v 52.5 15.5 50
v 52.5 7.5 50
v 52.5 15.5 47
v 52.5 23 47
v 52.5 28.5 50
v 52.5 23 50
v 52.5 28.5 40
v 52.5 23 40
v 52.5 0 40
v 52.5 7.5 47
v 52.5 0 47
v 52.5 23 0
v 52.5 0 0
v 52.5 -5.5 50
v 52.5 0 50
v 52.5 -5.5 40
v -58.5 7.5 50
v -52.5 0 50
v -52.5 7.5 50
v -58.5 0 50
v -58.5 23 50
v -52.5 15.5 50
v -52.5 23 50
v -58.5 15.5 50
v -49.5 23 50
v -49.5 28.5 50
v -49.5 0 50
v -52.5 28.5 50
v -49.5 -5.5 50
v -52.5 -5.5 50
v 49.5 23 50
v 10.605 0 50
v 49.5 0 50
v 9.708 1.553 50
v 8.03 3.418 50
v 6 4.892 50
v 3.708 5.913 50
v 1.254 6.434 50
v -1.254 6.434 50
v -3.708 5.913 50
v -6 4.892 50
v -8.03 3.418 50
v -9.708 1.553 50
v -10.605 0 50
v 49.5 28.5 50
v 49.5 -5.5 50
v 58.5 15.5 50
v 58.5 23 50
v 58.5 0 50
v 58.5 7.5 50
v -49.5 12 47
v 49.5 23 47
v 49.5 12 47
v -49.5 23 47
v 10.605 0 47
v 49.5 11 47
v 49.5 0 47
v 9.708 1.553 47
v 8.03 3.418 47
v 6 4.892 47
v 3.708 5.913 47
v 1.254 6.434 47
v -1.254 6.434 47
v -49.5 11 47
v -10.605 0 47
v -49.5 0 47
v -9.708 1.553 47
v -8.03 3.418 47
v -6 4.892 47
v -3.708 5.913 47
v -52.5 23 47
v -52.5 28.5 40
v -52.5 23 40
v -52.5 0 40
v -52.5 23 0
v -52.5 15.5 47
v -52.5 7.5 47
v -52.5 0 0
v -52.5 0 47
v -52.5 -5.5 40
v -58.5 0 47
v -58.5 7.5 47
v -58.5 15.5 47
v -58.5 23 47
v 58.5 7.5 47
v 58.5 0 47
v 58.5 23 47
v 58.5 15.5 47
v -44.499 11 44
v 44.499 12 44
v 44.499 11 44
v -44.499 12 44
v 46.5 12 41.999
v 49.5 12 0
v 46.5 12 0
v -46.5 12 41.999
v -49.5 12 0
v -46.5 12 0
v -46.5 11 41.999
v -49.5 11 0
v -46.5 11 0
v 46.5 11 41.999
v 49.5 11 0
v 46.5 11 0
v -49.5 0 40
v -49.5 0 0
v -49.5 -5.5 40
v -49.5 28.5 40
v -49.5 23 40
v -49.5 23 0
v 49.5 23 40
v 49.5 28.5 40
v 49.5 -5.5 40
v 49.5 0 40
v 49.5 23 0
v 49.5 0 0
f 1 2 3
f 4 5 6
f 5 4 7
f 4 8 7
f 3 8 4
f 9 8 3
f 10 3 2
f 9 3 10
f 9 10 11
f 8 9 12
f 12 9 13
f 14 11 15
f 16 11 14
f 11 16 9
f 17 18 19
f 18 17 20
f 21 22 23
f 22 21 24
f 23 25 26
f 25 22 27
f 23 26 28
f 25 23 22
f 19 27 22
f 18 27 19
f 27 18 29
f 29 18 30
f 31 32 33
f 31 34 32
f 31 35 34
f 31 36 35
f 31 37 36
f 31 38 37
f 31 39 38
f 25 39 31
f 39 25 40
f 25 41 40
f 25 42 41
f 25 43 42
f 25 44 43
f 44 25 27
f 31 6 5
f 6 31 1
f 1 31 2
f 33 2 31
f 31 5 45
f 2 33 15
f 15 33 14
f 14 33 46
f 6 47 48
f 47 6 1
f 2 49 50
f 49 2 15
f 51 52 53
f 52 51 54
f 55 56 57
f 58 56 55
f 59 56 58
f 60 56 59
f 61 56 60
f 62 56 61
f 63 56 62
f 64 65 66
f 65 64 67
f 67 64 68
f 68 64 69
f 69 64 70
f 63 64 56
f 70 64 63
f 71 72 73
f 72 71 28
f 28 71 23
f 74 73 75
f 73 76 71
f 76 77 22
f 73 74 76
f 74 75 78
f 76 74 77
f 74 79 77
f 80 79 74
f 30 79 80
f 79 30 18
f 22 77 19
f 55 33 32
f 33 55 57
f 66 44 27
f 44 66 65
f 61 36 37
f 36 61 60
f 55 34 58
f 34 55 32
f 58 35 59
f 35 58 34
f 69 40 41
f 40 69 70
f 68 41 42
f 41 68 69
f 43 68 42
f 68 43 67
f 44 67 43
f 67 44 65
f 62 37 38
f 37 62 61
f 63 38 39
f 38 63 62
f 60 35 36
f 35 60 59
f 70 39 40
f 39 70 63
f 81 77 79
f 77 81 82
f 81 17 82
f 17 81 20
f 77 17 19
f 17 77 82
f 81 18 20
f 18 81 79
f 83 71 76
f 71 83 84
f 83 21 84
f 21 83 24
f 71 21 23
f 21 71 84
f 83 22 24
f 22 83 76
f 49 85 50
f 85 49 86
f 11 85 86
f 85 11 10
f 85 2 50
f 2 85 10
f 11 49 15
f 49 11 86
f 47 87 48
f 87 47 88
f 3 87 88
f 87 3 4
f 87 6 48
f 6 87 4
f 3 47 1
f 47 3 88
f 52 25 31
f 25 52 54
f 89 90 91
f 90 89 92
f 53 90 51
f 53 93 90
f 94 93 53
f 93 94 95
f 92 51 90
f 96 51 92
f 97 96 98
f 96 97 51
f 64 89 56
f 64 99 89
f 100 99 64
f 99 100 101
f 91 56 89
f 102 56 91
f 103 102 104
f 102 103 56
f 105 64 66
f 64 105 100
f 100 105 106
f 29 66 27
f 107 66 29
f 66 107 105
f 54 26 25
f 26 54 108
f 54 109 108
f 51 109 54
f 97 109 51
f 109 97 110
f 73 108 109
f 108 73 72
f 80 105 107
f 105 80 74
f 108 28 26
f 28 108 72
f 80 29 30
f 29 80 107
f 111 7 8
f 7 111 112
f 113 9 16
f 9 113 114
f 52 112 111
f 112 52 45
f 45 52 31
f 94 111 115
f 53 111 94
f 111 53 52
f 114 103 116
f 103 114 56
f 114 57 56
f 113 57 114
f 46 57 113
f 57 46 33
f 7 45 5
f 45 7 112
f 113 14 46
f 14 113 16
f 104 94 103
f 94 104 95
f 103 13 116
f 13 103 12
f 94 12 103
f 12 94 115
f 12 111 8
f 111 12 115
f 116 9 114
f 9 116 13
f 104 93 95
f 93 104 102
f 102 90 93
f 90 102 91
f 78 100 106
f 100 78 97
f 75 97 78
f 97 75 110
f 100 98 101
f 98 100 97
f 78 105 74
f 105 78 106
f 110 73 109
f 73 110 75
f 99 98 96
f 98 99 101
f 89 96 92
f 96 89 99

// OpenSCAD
bee_space = 7;

/*
// 3 make a 3/4d frame
frame_height = 177;
frame_width = (465 / 3) - bee_space * 2;
frame_spacing = 33;
frame_bar_width = 23;

bar_thickness = 3;
tab_length = bee_space;
tab_notch = 8;
spacing_tab_width = 10;
corner_size = 10;
groove_depth = 3;
groove_width = 3;
*/

// Apidea compatible?
frame_height = 50;
frame_width = 105;
frame_spacing = 34;
frame_bar_width = 23;

bar_thickness = 3;
tab_length = 6;
tab_notch = 8;
spacing_tab_width = 10;
corner_size = 10;
groove_depth = 3;
groove_width = 3;

groove1_y = frame_bar_width/2-bar_thickness-groove_width/2;
groove2_y = frame_bar_width/2+groove_width/2;

module grooved_tab() {
    translate([-tab_length, 0, 0])
        cube([tab_length, frame_bar_width/2-tab_notch/2, bar_thickness]);
    translate([-tab_length, frame_bar_width/2+tab_notch/2, 0])
        cube([tab_length, frame_bar_width/2-tab_notch/2, bar_thickness]);
}

module top_bar() {
    difference() {
        translate([-frame_width/2, 0, frame_height - bar_thickness])
            cube([frame_width, frame_bar_width/2-groove_width/2, bar_thickness]);
        translate([0, -(frame_spacing-frame_bar_width)/2, 0])
            cylinder(r=12, h=1e3);
    }
    
    translate([-frame_width/2, frame_bar_width/2-2, frame_height - bar_thickness])
        cube([frame_width, frame_bar_width/2+2, bar_thickness]);
    
    // Top Groove
    translate([-frame_width/2, groove2_y-2, frame_height - bar_thickness - groove_depth])
        cube([frame_width, 1, groove_depth]);
    
    //translate([-frame_width/2, groove2_y, frame_height - bar_thickness - groove_depth])
    //    cube([frame_width, bar_thickness, groove_depth]);
    
    
    // Tabs
    translate([-frame_width/2, 0, frame_height-bar_thickness])
        grooved_tab();
    translate([frame_width/2+tab_length, 0, frame_height-bar_thickness])
        grooved_tab();
    
    // Spacers
    translate([-frame_width/2, -(frame_spacing-frame_bar_width)/2, frame_height - spacing_tab_width])
        cube([bar_thickness, frame_spacing, spacing_tab_width]);
    
    translate([frame_width/2-bar_thickness, -(frame_spacing-frame_bar_width)/2, frame_height - spacing_tab_width])
        cube([bar_thickness, frame_spacing, spacing_tab_width]);
}

module corner() {
    hull() {
        translate([-groove_depth, 0, 1])
            cube([1, 1, 1e-3]);
        translate([-groove_depth, 0, corner_size+1])
            cube([1, 1, 1e-3]);
        translate([-groove_depth-corner_size, 0, 1])
            cube([1, 1, 1e-3]);
    }
}

module side_bar() {
    x_offset = frame_width/2-bar_thickness;
    translate([x_offset, 0, 0])
        cube([bar_thickness, frame_bar_width, frame_height]);
    
    //translate([x_offset-groove_depth, groove1_y, 0])
    //    cube([groove_depth, bar_thickness, frame_height]);
    
    translate([x_offset-groove_depth, groove2_y-2, 0])
        cube([groove_depth, 1, frame_height]);
    
    //translate([x_offset, groove1_y, 0])
    //    corner();
    //translate([x_offset, groove2_y, 0])
    //    corner();

    translate([frame_width/2, groove2_y-2, frame_height])
        mirror([0, 0, 1])
            corner();
    
    // Corner bottom
    //translate([x_offset-groove_depth-corner_size, groove1_y, 0])
    //    cube([groove_depth+corner_size, groove2_y-groove1_y+bar_thickness, bar_thickness]);
}

top_bar();
side_bar();
translate([0, frame_bar_width, 0])
    rotate([0, 0, 180])
        side_bar();
